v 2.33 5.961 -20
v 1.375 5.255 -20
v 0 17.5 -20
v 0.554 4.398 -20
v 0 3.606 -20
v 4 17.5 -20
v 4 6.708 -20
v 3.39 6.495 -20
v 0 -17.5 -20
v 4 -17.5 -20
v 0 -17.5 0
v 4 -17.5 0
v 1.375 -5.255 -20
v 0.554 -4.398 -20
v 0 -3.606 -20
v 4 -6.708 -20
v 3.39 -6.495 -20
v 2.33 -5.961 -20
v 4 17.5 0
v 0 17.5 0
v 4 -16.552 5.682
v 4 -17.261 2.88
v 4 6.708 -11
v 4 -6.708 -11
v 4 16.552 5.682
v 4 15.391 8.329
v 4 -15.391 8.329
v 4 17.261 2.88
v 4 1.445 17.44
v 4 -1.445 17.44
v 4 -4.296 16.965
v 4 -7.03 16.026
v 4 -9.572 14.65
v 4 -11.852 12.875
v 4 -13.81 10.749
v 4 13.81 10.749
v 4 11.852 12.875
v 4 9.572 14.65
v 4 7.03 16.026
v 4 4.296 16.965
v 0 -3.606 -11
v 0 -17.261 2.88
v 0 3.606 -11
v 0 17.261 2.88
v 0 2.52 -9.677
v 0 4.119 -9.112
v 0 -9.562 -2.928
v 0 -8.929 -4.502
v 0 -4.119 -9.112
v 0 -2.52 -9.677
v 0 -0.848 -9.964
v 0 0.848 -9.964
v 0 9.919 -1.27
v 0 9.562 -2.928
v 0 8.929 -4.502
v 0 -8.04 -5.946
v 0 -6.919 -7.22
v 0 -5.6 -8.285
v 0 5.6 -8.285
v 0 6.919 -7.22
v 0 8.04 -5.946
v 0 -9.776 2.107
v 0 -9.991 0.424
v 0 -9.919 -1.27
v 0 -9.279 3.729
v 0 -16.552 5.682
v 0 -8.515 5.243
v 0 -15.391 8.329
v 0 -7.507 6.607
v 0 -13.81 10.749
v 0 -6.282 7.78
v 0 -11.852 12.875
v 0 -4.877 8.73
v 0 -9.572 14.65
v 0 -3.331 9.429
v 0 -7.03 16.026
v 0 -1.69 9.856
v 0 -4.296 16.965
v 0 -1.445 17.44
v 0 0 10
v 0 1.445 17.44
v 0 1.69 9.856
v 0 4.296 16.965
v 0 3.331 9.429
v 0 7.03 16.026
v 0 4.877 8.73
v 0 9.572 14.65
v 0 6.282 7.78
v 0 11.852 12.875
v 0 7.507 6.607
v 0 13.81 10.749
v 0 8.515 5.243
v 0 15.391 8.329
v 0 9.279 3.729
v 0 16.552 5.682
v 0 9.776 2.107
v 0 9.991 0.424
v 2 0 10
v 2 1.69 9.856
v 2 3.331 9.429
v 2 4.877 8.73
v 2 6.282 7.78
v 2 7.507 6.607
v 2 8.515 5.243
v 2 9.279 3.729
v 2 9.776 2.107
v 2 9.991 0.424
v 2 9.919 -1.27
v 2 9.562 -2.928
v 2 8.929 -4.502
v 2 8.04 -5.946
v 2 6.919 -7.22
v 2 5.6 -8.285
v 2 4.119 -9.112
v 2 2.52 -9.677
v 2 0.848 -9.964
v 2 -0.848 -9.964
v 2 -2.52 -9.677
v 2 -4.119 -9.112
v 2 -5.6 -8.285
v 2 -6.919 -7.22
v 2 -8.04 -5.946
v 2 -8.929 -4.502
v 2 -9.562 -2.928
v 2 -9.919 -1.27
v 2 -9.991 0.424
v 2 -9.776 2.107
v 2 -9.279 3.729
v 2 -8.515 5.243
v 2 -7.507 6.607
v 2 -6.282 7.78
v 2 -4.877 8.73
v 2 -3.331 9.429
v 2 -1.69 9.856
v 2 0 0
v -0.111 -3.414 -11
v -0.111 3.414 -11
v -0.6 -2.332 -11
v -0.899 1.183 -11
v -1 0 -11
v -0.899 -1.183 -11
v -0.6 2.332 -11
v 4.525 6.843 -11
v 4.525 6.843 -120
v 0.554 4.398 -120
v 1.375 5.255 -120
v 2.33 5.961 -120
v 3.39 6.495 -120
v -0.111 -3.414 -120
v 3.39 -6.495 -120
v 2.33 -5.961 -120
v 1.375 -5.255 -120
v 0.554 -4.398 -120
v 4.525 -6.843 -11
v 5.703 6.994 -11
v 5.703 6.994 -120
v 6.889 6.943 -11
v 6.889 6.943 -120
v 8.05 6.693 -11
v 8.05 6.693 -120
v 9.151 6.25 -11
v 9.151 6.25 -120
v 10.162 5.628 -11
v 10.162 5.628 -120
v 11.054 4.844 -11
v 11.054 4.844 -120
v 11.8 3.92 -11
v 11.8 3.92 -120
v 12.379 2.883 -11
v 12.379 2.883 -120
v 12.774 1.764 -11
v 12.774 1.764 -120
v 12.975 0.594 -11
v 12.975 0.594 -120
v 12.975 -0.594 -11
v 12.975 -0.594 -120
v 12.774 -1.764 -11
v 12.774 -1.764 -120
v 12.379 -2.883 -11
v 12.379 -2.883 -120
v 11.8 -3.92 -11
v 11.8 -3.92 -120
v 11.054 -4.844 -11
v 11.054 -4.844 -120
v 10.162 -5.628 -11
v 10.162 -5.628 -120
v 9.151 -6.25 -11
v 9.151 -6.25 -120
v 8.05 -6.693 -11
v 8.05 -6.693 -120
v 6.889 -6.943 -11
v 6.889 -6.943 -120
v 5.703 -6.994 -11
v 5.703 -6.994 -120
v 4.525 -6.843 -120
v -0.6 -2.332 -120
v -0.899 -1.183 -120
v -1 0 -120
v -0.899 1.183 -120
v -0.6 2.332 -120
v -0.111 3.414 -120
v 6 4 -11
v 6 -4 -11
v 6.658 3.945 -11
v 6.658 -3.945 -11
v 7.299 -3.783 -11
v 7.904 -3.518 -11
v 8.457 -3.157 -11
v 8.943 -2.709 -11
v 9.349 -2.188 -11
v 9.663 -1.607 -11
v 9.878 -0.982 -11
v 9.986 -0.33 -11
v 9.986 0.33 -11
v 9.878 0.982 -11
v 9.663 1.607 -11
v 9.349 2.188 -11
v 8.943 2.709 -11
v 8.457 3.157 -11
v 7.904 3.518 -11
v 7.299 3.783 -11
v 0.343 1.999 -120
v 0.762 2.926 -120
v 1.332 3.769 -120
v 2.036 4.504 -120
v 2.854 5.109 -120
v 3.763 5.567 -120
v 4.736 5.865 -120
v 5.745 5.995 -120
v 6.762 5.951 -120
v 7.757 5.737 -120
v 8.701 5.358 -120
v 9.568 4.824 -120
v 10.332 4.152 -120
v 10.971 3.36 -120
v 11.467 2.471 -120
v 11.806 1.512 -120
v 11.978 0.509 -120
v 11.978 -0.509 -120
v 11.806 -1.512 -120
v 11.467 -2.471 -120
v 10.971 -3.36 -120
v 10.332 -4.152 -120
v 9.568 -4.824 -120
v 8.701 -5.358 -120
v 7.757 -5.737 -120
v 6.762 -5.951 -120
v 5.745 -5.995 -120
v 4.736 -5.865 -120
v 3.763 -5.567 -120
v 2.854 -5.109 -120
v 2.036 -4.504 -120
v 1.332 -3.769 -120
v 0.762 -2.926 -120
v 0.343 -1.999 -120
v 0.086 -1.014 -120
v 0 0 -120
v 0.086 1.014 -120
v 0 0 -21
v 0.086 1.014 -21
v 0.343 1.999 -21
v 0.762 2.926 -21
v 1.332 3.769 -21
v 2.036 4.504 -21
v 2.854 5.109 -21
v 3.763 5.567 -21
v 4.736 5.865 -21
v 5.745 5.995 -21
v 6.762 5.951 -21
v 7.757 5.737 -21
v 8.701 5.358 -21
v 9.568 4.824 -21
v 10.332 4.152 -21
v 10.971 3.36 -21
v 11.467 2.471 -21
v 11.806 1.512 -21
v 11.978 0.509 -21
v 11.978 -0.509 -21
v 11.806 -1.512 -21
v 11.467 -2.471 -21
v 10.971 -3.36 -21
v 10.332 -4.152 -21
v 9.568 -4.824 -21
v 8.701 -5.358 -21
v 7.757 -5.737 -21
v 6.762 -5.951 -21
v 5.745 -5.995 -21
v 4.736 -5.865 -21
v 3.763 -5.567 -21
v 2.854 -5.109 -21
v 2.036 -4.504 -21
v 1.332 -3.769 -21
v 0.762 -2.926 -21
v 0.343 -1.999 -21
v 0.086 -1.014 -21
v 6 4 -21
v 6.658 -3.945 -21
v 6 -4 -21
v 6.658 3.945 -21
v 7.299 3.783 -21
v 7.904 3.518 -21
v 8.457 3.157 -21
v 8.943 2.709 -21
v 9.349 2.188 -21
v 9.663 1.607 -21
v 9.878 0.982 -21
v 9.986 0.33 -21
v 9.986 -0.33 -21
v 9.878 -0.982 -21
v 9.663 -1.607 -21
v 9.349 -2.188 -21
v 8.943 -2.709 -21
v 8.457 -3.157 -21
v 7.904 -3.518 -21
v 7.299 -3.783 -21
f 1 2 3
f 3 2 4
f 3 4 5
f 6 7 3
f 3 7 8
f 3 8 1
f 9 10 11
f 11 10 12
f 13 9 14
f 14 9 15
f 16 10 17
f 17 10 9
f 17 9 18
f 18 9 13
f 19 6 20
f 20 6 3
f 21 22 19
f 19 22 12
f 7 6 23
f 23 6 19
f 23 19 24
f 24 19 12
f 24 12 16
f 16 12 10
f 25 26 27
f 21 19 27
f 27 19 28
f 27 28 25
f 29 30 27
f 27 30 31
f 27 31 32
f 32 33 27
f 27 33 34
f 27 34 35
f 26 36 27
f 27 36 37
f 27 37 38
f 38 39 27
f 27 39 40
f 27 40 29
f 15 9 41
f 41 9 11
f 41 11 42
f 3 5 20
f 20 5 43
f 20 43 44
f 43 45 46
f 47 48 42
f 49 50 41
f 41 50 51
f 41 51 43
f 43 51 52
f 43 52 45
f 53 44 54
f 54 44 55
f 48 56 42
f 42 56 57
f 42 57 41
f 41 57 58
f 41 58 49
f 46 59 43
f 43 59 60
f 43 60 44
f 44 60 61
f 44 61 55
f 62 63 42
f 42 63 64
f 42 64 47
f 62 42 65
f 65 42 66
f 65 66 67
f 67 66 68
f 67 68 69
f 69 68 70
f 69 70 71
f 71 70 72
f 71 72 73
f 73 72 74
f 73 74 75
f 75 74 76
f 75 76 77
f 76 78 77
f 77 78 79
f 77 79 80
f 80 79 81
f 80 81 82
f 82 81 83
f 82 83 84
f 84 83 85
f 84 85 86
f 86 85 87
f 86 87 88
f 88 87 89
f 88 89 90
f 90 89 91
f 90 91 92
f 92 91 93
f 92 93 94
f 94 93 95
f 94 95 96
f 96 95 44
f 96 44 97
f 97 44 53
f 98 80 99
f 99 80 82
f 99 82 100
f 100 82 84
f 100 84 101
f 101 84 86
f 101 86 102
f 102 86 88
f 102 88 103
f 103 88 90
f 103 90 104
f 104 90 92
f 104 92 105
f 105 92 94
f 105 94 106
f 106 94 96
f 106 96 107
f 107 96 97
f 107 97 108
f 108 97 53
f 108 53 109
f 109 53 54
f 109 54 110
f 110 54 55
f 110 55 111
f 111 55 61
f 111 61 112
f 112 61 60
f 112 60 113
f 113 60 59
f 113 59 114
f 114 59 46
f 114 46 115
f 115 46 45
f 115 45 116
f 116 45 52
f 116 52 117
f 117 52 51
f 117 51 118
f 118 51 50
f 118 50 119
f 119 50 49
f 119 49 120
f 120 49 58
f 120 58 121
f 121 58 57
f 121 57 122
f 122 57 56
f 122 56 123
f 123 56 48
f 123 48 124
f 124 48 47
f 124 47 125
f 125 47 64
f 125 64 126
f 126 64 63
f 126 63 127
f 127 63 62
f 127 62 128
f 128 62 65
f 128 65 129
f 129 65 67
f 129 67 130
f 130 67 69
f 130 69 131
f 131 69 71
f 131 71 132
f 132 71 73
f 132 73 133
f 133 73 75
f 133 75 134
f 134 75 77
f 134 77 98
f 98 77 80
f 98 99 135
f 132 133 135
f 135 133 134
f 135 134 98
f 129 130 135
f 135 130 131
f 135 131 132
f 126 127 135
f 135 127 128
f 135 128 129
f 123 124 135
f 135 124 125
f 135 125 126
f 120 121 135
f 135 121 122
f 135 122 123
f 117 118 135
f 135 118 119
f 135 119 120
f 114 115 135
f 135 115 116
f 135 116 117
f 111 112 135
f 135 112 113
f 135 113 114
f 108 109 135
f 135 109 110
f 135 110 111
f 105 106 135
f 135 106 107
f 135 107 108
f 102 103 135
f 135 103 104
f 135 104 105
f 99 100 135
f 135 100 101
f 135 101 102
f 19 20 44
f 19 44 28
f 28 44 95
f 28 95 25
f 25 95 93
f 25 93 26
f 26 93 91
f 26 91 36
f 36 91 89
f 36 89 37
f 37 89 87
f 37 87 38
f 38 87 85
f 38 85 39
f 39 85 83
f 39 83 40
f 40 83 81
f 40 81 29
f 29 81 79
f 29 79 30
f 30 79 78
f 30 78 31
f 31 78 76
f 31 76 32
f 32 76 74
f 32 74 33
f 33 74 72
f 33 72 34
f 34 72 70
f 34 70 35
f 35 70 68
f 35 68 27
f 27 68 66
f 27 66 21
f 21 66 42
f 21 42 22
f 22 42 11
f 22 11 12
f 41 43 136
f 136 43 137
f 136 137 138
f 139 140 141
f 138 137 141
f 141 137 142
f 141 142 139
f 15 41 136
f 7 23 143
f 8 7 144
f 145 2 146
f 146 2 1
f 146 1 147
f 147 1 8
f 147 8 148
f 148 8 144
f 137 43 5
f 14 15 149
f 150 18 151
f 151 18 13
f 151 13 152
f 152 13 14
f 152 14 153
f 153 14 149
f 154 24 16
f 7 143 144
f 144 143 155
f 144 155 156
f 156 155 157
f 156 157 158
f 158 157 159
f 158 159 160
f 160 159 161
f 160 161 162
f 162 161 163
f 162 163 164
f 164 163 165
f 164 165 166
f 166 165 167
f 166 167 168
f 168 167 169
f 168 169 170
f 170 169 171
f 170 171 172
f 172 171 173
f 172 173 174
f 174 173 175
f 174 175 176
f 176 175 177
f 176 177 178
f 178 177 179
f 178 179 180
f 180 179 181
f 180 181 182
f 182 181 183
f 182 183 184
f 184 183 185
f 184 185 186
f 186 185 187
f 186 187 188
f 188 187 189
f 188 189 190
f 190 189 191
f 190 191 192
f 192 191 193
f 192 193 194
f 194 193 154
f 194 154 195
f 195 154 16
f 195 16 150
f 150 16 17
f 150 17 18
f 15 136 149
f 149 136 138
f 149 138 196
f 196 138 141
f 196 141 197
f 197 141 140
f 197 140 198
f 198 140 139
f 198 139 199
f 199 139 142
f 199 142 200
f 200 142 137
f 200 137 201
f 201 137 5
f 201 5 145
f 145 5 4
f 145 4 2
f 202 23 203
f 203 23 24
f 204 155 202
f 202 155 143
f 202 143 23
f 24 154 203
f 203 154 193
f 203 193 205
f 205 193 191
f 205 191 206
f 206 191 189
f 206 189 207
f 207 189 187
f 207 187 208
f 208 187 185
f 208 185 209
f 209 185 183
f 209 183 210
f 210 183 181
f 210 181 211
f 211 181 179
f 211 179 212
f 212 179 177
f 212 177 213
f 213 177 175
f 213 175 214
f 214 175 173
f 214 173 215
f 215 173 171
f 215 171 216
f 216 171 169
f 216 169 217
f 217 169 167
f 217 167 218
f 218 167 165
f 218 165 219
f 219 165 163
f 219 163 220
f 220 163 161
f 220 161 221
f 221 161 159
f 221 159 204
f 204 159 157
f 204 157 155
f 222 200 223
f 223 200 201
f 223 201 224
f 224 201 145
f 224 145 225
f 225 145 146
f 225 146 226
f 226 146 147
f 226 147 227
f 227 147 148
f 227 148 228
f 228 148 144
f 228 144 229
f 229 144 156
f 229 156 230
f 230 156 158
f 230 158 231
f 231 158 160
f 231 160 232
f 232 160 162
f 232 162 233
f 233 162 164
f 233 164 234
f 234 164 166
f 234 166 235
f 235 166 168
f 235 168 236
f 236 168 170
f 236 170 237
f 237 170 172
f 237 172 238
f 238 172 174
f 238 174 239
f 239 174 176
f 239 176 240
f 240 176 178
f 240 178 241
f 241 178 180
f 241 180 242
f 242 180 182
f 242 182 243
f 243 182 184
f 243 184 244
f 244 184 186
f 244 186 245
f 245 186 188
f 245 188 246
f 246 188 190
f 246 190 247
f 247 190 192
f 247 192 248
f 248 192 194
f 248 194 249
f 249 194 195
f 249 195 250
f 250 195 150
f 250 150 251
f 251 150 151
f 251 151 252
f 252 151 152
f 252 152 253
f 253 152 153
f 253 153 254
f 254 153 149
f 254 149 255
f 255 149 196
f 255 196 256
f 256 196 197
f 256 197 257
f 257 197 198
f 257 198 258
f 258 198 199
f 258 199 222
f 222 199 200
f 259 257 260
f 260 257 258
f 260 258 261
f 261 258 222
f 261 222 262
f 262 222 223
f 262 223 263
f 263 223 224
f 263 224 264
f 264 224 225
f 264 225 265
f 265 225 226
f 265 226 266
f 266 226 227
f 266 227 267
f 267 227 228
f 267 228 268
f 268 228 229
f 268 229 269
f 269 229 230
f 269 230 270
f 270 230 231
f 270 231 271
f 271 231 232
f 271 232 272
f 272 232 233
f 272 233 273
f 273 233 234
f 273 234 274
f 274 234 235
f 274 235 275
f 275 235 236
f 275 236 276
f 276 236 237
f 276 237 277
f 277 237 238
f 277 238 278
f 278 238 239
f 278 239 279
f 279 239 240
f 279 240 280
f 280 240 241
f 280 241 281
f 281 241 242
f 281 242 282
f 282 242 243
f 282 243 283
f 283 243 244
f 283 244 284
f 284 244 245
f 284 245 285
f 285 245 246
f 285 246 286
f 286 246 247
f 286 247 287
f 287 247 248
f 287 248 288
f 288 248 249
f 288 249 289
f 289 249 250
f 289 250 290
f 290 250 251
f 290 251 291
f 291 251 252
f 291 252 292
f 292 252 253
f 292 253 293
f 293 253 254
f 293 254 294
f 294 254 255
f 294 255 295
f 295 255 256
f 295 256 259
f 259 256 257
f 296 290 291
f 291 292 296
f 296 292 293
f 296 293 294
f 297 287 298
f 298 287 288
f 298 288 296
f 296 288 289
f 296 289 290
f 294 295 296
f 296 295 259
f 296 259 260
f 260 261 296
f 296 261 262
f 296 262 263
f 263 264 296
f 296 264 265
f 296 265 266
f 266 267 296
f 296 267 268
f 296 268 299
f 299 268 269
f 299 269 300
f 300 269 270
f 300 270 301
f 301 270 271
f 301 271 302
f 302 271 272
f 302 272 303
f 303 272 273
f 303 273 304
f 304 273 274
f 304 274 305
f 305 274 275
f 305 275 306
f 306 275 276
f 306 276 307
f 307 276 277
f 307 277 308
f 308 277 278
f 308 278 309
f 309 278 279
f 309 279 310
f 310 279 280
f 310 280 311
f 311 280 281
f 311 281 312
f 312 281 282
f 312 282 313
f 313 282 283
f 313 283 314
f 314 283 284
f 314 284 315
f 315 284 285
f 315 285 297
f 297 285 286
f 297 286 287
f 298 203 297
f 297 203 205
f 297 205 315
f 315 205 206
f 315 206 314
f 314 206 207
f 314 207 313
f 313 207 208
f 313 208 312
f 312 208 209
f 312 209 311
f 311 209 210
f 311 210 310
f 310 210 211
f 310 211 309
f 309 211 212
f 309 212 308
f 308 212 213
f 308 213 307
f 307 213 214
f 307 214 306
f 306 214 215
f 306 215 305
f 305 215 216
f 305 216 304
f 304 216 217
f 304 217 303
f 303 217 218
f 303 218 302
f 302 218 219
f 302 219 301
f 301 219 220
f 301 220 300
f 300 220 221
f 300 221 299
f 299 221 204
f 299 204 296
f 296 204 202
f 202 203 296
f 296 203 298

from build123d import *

# Parameters (mm, degrees)
ESQUISSE1_W             = 40
ESQUISSE1_H             = 35
BOSS_EXTRU_1_DEPTH      = 4
ESQUISSE2_R             = 10
ENL_V_MAT_EXTRU_1_DEPTH = 2
ENL_V_MAT_EXTRU_2_DEPTH = 27.874709301
BOSS_EXTRU_2_DEPTH      = 100
BOSS_EXTRU_2_DEPTH_BACK = 9
ESQUISSE4_R             = 7
ESQUISSE5_R             = 6
ENL_V_MAT_EXTRU_5_DEPTH = 99
ENL_V_MAT_EXTRU_9_DEPTH = 99


with BuildPart() as part:
    # Esquisse1 → Boss.-Extru.1 (new body)
    with BuildSketch(Plane(origin=(0, 0, 0), x_dir=(0, 0, -1), z_dir=(1, 0, 0))):
        Rectangle(ESQUISSE1_W, ESQUISSE1_H)
    extrude(amount=BOSS_EXTRU_1_DEPTH)

    # Esquisse2 → Enlèv. mat.-Extru.1 (cut)
    with BuildSketch(Plane.ZY):
        Circle(ESQUISSE2_R)
    extrude(amount=-ENL_V_MAT_EXTRU_1_DEPTH, mode=Mode.SUBTRACT)

    # Esquisse3 → Enlèv. mat.-Extru.2 (cut, through all)
    with BuildSketch(Plane.ZY):
        with BuildLine():
            Line((0, -17.5), (20, -17.5))
            Line((20, -17.5), (20, 17.5))
            Line((20, 17.5), (0, 17.5))
            ThreePointArc((0, 17.5), (17.5, 0), (0, -17.5))
        make_face()
    extrude(amount=-ENL_V_MAT_EXTRU_2_DEPTH, mode=Mode.SUBTRACT)

    # Esquisse4 → Boss.-Extru.2 (add, two sides: drawn at the far end of the back side and taken through both)
    with BuildSketch(Plane(origin=(0, 0, -20), x_dir=(-1, 0, 0), z_dir=(0, 0, -1)).offset(-BOSS_EXTRU_2_DEPTH_BACK)):
        with Locations((-6, 0)):
            Circle(ESQUISSE4_R)
    extrude(amount=BOSS_EXTRU_2_DEPTH + BOSS_EXTRU_2_DEPTH_BACK)

    # Esquisse5 → Enlèv. mat.-Extru.5 (cut)
    with BuildSketch(Plane(origin=(0, 0, -120), x_dir=(-1, 0, 0), z_dir=(0, 0, -1))):
        with Locations((-6, 0)):
            Circle(ESQUISSE5_R)
    extrude(amount=-ENL_V_MAT_EXTRU_5_DEPTH, mode=Mode.SUBTRACT)

    # Esquisse10 → Enlèv. mat.-Extru.9 (cut)
    with BuildSketch(Plane.XY.offset(-11)):
        with BuildLine():
            Line((6, -4), (6, 4))
            ThreePointArc((6, 4), (10, 0), (6, -4))
        make_face()
    extrude(amount=-ENL_V_MAT_EXTRU_9_DEPTH, mode=Mode.SUBTRACT)


solid = part.part
